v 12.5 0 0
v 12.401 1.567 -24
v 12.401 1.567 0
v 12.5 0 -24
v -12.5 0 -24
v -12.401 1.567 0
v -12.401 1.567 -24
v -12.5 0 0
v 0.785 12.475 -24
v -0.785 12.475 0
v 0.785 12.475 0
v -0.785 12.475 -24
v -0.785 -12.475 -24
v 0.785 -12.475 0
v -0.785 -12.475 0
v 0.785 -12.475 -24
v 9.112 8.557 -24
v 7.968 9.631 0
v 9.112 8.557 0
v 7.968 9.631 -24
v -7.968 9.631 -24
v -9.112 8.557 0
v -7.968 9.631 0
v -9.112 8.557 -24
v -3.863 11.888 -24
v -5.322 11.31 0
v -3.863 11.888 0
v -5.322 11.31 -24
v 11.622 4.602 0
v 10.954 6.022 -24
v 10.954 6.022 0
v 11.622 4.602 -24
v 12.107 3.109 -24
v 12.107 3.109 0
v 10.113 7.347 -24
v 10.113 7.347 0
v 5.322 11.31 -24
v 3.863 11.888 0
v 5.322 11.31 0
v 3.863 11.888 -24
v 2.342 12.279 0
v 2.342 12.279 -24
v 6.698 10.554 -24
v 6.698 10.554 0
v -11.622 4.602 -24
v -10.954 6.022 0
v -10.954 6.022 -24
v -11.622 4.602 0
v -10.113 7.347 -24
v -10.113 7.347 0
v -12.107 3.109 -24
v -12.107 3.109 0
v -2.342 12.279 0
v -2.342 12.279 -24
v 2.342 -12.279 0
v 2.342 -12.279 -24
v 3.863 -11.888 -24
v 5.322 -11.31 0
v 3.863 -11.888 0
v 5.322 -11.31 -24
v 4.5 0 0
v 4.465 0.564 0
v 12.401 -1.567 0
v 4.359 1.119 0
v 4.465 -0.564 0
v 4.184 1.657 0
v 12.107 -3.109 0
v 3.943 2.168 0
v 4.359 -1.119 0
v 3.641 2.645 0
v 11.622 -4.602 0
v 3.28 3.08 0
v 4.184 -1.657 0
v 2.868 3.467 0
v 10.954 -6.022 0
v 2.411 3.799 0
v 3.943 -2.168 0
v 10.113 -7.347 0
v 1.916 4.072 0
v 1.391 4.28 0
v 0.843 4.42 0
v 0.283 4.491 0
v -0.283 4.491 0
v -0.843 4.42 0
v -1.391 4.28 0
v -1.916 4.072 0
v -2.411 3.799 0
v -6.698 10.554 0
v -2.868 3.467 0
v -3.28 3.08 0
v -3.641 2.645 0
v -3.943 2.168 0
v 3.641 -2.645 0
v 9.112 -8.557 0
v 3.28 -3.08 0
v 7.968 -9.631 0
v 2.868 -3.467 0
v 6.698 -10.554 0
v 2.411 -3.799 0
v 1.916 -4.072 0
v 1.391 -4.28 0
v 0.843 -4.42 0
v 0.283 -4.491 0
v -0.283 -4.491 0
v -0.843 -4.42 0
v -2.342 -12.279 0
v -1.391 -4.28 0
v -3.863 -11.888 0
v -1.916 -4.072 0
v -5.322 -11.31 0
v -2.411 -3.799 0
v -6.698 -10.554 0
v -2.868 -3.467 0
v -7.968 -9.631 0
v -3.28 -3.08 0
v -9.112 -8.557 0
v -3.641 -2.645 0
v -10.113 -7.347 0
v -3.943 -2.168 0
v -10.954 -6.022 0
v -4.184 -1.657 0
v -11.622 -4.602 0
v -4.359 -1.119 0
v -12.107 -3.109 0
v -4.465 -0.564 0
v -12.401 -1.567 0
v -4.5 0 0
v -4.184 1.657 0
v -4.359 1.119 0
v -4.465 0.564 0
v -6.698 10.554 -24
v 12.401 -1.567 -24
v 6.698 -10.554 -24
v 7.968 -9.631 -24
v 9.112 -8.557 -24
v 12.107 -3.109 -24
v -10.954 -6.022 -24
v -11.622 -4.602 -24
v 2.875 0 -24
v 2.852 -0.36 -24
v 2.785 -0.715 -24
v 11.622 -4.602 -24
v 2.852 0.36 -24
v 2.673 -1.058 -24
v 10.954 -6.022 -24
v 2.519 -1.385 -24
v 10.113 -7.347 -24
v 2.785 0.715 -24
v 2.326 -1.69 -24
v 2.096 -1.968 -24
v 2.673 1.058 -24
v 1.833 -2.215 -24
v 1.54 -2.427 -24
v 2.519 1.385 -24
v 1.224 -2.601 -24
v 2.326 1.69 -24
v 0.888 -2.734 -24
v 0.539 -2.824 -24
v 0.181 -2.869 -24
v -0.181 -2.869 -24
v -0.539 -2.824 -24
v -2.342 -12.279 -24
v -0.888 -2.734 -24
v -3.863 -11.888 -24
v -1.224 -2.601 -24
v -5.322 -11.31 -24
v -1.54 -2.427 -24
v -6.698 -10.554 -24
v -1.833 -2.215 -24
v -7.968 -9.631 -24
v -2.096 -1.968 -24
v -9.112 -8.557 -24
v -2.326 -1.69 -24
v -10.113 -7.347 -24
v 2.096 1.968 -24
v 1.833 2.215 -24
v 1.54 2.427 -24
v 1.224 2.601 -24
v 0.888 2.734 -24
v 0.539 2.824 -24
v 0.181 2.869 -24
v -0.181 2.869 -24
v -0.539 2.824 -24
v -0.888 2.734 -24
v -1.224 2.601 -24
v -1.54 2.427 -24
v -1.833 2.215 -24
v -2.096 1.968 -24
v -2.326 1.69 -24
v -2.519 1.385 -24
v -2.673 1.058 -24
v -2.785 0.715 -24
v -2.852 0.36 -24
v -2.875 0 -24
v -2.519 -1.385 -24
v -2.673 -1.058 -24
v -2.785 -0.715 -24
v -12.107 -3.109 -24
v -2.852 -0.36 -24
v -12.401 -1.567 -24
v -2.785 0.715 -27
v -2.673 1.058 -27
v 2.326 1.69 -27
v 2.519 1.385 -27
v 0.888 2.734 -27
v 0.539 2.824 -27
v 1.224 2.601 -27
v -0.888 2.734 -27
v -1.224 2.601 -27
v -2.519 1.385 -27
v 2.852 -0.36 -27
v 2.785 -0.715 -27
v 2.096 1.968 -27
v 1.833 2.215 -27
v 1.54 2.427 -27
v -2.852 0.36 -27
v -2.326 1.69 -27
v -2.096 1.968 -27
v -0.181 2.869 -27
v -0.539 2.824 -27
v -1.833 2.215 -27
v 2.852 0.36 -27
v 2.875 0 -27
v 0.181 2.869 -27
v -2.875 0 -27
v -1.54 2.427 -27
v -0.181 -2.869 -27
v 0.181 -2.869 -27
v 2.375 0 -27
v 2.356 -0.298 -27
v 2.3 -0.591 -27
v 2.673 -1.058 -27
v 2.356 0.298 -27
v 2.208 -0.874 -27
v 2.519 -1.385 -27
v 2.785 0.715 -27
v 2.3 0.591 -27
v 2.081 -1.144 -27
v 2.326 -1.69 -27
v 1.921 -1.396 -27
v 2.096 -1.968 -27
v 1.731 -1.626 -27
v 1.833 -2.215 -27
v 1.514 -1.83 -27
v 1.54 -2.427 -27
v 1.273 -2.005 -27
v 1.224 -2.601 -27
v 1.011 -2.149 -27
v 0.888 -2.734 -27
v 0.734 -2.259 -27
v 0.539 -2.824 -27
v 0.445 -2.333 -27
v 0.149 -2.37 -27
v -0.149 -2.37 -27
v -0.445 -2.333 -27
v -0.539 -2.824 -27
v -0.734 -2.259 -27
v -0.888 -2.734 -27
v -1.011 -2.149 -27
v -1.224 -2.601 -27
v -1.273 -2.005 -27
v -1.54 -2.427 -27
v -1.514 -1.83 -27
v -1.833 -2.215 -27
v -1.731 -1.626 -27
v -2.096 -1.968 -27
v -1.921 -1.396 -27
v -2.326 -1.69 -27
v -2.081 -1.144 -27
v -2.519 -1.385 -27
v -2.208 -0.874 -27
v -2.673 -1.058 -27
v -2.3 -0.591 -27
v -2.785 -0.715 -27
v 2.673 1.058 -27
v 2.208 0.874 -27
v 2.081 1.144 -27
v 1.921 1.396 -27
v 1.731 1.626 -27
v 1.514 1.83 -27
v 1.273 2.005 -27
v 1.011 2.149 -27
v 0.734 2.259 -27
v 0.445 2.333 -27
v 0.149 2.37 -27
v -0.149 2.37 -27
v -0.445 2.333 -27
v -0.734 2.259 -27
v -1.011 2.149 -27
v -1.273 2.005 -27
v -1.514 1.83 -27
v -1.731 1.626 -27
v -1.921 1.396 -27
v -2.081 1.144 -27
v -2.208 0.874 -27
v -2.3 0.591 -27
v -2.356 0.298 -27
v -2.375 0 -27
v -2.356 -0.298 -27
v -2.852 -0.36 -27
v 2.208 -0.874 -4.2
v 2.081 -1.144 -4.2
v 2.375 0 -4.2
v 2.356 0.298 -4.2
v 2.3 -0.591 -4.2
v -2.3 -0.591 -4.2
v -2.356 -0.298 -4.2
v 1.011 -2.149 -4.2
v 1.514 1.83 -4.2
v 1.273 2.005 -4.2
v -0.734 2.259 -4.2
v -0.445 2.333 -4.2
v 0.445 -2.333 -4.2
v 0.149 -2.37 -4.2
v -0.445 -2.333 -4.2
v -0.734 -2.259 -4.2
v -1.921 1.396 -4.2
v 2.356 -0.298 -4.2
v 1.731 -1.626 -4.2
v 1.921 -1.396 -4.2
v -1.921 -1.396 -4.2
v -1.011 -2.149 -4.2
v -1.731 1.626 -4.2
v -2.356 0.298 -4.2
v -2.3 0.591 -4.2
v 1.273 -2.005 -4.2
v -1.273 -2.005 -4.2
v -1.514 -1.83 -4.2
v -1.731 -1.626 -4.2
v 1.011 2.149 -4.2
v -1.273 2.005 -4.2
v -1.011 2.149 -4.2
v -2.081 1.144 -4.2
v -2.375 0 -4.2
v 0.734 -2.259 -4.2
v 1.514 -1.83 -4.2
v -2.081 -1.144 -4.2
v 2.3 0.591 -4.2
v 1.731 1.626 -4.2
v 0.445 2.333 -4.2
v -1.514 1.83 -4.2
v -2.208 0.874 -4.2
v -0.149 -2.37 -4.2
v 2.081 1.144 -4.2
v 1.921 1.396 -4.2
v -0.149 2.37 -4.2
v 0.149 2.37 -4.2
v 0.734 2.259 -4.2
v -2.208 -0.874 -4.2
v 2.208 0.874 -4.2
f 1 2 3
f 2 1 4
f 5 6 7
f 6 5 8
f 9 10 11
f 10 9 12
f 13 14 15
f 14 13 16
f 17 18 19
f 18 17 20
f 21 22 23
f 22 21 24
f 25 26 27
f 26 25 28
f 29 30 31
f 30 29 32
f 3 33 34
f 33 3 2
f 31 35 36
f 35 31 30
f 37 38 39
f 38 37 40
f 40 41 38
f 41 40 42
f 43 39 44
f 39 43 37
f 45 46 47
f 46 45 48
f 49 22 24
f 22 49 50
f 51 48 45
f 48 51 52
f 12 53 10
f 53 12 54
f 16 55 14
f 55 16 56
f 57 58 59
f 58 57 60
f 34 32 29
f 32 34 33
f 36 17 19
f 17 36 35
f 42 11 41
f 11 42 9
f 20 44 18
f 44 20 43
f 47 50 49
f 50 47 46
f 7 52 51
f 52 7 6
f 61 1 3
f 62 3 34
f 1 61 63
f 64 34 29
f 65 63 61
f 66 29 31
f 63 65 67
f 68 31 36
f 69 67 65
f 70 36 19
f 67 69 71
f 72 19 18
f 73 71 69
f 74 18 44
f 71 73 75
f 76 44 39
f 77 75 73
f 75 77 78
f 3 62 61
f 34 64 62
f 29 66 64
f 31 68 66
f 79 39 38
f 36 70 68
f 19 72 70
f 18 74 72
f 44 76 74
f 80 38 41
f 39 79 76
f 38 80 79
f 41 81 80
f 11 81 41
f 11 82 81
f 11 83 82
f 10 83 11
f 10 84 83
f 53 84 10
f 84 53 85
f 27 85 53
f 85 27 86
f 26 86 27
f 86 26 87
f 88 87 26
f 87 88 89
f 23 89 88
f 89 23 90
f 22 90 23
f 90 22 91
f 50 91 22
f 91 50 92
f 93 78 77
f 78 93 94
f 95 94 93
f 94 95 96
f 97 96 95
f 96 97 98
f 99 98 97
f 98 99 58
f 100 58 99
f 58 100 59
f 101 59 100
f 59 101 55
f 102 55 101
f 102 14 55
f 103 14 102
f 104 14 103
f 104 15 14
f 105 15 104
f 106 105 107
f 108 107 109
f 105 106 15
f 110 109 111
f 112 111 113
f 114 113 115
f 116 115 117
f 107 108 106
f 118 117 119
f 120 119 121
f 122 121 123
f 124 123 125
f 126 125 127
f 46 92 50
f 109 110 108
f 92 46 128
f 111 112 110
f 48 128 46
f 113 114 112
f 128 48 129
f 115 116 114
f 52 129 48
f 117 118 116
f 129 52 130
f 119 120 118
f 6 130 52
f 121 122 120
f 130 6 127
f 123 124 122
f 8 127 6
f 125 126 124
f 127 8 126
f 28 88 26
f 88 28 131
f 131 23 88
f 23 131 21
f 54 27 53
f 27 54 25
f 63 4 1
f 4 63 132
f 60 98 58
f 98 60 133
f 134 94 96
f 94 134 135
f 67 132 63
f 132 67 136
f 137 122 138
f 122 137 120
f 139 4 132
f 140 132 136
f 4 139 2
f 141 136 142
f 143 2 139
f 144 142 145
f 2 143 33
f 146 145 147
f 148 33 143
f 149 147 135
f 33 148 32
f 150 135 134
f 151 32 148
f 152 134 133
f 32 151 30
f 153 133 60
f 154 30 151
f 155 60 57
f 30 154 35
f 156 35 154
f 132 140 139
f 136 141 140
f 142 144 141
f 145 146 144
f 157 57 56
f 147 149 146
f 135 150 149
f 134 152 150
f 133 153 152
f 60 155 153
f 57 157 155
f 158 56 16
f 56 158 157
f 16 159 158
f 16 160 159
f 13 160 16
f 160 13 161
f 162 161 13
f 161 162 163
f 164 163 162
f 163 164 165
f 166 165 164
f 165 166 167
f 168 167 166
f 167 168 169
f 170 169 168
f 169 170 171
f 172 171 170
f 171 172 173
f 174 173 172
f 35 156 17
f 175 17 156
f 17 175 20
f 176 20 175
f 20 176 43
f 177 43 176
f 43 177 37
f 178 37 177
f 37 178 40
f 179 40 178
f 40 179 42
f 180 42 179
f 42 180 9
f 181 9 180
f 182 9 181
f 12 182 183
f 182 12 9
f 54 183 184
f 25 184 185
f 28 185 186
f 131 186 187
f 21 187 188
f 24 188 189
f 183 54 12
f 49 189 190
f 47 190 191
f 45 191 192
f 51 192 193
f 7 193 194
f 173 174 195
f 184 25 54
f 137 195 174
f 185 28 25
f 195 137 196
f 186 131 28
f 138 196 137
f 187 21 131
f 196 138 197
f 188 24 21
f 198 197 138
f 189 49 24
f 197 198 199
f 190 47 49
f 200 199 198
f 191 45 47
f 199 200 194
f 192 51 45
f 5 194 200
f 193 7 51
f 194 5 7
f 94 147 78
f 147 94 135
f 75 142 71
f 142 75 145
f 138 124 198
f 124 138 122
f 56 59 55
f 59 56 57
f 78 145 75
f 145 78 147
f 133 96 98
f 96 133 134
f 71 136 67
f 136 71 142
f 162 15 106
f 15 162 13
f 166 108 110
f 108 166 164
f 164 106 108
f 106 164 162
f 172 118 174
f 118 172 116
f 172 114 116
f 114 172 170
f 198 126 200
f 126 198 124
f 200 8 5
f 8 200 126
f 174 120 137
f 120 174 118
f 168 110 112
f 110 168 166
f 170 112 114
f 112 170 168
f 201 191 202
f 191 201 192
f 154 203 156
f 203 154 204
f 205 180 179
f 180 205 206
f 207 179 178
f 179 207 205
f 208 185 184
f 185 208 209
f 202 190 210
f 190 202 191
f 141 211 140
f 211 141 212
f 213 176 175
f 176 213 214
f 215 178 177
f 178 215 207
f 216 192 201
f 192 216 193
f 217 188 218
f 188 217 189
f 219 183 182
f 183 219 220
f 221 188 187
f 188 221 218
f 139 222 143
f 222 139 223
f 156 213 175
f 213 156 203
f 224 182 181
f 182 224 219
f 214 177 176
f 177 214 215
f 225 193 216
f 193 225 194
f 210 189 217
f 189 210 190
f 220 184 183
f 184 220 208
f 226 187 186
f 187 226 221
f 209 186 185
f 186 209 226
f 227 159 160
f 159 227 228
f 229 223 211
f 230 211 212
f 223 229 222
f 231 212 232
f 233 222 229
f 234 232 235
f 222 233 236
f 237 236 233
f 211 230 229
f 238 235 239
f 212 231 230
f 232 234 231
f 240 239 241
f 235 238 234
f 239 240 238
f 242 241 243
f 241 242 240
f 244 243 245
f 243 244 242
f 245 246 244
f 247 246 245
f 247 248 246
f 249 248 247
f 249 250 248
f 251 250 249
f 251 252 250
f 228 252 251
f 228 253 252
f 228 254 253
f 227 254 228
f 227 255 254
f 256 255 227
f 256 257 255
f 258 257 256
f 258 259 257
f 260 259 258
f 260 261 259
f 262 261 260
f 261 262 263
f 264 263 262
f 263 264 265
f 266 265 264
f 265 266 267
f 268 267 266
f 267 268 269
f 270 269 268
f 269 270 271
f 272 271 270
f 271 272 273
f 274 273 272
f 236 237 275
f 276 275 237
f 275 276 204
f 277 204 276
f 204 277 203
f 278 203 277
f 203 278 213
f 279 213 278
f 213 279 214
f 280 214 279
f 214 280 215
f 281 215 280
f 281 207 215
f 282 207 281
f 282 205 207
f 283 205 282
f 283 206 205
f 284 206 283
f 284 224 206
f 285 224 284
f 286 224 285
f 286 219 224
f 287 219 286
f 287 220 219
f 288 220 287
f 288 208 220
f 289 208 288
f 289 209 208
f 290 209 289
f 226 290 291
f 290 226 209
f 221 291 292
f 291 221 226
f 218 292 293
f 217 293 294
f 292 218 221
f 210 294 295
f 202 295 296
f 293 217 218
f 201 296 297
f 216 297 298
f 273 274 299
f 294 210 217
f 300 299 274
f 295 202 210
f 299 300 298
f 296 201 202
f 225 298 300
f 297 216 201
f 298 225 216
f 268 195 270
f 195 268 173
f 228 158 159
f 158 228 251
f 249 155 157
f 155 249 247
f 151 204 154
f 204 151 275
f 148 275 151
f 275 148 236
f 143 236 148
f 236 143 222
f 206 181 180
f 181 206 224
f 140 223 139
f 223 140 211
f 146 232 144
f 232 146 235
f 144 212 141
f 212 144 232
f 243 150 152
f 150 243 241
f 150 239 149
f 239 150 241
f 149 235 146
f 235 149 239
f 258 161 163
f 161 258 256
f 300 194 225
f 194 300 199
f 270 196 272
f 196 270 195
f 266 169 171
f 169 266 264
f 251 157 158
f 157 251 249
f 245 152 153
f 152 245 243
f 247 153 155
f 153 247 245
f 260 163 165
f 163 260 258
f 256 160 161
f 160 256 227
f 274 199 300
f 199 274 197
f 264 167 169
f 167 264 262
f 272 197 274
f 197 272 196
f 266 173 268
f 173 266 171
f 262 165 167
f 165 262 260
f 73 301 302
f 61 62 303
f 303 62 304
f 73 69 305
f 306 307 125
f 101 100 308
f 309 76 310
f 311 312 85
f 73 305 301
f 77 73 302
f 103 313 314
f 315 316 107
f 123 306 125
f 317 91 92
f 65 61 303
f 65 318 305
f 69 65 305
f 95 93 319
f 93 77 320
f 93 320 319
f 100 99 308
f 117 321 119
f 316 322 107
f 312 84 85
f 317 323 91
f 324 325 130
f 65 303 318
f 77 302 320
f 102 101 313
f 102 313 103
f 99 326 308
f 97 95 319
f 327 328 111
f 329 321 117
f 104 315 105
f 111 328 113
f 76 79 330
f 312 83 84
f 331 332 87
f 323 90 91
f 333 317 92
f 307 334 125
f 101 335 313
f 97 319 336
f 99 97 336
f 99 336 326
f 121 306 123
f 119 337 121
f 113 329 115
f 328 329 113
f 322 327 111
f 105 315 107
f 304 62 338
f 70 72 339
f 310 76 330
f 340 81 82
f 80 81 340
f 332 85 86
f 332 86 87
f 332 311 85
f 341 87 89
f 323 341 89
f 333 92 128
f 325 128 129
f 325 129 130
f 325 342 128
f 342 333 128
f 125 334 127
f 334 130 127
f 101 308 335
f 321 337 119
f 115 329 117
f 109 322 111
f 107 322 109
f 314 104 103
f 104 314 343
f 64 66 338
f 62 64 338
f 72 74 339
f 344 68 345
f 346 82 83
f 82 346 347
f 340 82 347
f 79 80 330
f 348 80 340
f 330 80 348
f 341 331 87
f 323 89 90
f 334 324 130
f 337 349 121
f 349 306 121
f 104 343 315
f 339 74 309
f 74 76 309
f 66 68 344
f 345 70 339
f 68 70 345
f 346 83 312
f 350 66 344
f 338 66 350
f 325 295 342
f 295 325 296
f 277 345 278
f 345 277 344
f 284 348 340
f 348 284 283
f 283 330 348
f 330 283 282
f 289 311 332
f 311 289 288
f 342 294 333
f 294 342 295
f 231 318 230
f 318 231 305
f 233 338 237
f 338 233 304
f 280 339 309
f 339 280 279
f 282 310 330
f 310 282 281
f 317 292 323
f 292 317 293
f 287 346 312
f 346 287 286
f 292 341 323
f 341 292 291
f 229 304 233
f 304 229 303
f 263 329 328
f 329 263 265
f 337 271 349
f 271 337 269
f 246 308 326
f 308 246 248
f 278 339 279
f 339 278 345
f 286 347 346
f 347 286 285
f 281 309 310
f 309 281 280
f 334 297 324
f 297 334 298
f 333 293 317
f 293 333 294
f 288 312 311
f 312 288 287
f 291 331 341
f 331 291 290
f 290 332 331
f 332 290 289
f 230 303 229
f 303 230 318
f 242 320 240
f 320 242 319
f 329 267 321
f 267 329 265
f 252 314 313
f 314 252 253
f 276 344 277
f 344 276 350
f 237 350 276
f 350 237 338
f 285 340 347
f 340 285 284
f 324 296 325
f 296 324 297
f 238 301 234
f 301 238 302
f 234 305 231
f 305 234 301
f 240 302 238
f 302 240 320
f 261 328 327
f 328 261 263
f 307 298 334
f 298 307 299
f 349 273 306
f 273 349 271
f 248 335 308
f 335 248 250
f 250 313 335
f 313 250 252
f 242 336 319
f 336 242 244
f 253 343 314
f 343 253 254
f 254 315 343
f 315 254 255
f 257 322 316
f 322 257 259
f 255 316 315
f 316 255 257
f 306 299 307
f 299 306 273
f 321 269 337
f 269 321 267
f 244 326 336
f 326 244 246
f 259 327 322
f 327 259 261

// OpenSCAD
$fn = 50;

difference() {
	union() {
		translate(v = [0, 0, -24.0]) {
			cylinder(h = 24, r = 12.5);
		}
		#translate(v = [0, 0, -27.0]) {
			cylinder(h = 27, r = 2.875);
		}
	}
	union() {
		translate(v = [0, 0, 0]) {
			rotate(a = [0, 0, 0]) {
				difference() {
					union() {
						translate(v = [0, 0, -27.0]) {
							cylinder(h = 27, r = 2.25);
						}
						translate(v = [0, 0, -4.2]) {
							cylinder(h = 4.2, r1 = 2.375, r2 = 4.5);
						}
						translate(v = [0, 0, -27.0]) {
							cylinder(h = 27, r = 2.375);
						}
						translate(v = [0, 0, -27.0]) {
							cylinder(h = 27, r = 2.25);
						}
					}
					union();
				}
			}
		}
	}
}
